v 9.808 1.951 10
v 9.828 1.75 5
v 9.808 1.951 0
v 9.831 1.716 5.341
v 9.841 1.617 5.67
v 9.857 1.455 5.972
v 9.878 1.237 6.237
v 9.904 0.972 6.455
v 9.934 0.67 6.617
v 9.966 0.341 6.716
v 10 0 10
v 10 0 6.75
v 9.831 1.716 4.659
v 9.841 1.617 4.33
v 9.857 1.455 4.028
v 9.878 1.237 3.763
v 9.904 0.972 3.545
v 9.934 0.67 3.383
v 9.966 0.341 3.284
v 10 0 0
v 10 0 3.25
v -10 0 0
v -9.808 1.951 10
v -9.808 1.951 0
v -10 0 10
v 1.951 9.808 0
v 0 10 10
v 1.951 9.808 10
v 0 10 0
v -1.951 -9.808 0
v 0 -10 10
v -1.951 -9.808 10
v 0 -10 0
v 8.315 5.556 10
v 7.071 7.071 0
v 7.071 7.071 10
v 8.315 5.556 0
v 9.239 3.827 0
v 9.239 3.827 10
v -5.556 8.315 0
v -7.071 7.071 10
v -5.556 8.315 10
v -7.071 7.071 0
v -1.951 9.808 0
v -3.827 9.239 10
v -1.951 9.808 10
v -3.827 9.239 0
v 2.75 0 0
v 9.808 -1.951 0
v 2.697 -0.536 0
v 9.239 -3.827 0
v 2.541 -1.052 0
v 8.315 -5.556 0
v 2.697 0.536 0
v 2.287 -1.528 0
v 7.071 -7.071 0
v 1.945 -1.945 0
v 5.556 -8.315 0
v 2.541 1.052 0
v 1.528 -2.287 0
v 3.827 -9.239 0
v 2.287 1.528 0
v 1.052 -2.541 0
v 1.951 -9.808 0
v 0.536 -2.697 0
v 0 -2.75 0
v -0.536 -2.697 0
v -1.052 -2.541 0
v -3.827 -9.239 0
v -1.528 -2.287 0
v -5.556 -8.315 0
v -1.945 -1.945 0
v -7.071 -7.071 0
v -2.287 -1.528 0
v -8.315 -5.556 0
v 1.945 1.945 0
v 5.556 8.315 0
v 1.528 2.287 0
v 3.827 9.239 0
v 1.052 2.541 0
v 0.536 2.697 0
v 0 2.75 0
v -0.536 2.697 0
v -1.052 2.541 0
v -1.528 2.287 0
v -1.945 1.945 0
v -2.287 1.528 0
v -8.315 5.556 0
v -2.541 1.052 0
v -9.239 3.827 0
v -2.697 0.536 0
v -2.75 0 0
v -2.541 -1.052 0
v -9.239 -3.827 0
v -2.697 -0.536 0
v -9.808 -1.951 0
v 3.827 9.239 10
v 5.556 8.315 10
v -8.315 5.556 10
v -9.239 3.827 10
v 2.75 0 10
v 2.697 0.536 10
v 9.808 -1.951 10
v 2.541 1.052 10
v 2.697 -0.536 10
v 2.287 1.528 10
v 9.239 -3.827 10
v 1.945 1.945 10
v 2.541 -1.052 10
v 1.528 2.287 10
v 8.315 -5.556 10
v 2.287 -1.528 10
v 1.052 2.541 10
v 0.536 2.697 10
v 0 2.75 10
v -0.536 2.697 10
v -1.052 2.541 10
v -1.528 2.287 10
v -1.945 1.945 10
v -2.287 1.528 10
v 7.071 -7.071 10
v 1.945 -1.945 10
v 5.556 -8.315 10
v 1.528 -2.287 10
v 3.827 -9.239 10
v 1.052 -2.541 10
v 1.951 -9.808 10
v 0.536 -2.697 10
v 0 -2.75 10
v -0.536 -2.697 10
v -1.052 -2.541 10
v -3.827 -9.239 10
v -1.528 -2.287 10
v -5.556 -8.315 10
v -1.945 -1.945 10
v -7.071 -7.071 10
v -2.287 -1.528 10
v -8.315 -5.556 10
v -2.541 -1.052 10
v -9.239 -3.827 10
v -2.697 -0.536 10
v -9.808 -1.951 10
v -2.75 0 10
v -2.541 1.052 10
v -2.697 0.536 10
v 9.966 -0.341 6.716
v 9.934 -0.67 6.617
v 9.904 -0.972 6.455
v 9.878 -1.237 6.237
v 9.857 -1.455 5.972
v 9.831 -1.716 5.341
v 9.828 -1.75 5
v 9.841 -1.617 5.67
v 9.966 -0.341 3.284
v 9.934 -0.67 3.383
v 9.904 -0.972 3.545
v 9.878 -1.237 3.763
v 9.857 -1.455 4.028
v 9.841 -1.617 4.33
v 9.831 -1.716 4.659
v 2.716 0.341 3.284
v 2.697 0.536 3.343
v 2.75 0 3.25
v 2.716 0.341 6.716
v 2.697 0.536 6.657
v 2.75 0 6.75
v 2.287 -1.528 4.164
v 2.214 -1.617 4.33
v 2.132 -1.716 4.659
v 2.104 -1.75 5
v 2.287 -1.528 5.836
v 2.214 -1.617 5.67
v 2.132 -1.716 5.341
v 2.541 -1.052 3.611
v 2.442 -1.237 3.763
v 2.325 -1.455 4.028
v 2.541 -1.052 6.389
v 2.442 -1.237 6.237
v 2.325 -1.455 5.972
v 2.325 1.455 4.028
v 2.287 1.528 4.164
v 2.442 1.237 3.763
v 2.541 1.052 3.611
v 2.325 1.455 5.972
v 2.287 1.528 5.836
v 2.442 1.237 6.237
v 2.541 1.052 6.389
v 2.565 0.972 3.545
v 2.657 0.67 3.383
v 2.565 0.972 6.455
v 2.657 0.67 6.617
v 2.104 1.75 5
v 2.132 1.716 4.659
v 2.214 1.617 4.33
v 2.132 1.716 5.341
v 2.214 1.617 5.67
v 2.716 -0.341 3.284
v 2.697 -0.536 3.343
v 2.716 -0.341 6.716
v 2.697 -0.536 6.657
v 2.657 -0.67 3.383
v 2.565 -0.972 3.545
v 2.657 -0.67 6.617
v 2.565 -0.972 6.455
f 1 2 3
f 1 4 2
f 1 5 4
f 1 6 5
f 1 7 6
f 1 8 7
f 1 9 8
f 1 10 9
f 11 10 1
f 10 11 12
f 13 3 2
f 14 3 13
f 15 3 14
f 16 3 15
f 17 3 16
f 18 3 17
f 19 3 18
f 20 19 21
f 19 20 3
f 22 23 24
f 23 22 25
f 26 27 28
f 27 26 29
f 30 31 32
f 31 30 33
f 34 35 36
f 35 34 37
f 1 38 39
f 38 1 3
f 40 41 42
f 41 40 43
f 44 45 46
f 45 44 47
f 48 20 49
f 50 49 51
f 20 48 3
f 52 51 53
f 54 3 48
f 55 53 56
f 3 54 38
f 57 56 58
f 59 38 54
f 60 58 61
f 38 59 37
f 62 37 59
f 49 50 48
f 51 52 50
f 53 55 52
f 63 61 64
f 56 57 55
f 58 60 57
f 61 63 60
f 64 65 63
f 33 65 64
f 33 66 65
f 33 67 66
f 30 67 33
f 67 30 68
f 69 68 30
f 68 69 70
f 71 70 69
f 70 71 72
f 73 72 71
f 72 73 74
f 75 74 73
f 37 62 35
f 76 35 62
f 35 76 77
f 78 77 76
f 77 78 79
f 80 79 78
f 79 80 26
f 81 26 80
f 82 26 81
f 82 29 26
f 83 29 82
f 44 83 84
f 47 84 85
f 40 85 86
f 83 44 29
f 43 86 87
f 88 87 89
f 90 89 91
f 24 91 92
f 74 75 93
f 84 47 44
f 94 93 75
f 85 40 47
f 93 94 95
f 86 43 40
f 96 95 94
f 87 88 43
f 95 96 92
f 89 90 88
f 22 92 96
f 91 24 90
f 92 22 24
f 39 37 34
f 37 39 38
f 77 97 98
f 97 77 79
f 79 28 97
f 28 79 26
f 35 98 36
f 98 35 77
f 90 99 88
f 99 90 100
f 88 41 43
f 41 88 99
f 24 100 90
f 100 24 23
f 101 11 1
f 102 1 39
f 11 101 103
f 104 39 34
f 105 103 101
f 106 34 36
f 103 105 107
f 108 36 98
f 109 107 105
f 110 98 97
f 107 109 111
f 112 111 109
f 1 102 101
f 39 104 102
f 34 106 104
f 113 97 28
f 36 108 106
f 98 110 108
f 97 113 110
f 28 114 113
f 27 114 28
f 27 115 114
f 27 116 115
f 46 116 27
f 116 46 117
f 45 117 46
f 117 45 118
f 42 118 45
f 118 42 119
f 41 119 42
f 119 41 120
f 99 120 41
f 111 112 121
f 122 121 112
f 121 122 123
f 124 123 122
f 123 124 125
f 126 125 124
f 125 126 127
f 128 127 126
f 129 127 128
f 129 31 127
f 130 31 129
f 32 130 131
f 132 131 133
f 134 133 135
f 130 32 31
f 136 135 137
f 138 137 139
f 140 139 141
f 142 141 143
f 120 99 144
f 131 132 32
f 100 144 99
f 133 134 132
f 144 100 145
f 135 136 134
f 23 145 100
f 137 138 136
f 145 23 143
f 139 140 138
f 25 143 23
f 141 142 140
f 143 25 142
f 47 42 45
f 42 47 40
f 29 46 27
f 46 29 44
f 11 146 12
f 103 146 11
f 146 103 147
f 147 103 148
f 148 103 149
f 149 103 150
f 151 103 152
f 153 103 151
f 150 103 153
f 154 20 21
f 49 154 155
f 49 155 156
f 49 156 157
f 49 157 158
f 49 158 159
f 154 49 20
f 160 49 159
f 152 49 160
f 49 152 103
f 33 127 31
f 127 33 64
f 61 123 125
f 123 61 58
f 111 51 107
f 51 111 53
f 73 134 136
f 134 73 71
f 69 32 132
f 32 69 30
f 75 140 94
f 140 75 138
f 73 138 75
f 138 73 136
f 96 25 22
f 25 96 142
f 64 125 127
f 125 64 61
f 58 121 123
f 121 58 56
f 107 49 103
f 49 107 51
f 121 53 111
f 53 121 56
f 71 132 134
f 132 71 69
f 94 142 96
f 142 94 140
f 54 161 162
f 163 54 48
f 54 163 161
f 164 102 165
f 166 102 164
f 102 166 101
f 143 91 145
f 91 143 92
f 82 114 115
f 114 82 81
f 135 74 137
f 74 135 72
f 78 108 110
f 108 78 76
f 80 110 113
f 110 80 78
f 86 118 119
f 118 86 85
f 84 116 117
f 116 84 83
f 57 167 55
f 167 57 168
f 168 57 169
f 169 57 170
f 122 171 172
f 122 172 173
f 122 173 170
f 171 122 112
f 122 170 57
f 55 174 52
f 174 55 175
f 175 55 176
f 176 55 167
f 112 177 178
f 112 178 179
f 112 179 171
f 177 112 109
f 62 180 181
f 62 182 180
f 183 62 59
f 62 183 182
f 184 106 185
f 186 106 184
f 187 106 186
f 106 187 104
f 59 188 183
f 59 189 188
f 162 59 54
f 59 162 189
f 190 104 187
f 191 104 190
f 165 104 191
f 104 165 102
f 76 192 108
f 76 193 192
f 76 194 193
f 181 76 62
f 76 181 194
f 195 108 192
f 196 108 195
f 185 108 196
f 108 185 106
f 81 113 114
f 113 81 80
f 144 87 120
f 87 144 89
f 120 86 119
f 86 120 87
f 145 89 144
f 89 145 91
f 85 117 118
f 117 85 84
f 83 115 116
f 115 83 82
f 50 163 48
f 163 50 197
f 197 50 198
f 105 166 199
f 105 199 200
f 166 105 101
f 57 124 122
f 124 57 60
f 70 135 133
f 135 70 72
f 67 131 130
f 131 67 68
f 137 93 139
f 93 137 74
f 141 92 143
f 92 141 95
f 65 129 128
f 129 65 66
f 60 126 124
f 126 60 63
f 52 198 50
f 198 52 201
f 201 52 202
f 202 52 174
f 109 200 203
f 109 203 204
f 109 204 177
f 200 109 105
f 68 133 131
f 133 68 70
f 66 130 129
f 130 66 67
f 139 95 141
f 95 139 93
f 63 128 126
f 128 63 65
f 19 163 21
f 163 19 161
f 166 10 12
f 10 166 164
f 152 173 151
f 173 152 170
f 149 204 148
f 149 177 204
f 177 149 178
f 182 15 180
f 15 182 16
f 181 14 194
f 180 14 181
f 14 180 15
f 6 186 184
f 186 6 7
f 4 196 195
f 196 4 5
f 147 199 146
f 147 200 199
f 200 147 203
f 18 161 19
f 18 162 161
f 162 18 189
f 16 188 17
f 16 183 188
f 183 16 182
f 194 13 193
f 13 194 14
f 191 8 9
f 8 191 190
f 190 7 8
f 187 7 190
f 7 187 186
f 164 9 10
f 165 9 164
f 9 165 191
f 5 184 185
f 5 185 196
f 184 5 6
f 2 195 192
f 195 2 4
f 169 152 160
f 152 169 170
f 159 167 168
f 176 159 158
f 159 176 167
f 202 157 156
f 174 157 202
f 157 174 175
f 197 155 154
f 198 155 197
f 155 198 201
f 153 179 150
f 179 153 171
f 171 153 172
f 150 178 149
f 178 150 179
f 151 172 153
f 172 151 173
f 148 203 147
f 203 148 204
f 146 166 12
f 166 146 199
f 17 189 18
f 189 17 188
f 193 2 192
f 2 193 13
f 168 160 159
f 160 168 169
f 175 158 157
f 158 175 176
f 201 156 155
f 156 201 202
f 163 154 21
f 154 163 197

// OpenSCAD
// Generated by SolidPython 1.1.3 on 2024-01-01 00:31:20


difference() {
	cylinder($fn = 32, h = 10, r = 10.0000000000);
	cylinder($fn = 32, h = 11, r = 2.7500000000);
	translate(v = [0, 0, 5.0000000000]) {
		rotate(a = 90, v = [0, 1, 0]) {
			cylinder($fn = 32, h = 10.0000000000, r = 1.7500000000);
		}
	}
}
/***********************************************
*********      SolidPython code:      **********
************************************************
 
#! /usr/bin/env python3
from solid.objects import *
from solid.solidpython import *
import sys
from math import cos, radians, sin, pi, tau
from pathlib import Path

from euclid3 import Point2, Point3, Vector3

from solid import *
from solid.utils import *

from typing import Set, Sequence, List, Callable, Optional, Union, Iterable, Tuple

import numpy as np

# ============
# = GEOMETRY =
# ============



if __name__ == "__main__":
	out_dir = sys.argv[1] if len(sys.argv) > 1 else Path(__file__).parent

	tolerance = .5
	ch = 10 # coupler height
	od = 20 # outer diameter
	ind = 5 + tolerance # inner diameter
	ssd = 3 + tolerance # set srew diameter

	main_body = cylinder(r = od/2, h = ch, segments = 32) # main body
	shaft_hole = cylinder(r = ind/2, h = ch+1, segments = 32)
	set_screw_hole = cylinder(r = ssd/2, h = od / 2, segments = 32)
	set_screw_hole = rotate(90,v=FORWARD_VEC)(set_screw_hole)
	set_screw_hole = translate([0,0,ch/2])(set_screw_hole)
	a = main_body
	a -= shaft_hole
	a -= set_screw_hole


	file_out = scad_render_to_file(a,  out_dir=out_dir, include_orig_code=True)
	print(f"{__file__}: SCAD file written to: \n{file_out}")
 
 
************************************************/
